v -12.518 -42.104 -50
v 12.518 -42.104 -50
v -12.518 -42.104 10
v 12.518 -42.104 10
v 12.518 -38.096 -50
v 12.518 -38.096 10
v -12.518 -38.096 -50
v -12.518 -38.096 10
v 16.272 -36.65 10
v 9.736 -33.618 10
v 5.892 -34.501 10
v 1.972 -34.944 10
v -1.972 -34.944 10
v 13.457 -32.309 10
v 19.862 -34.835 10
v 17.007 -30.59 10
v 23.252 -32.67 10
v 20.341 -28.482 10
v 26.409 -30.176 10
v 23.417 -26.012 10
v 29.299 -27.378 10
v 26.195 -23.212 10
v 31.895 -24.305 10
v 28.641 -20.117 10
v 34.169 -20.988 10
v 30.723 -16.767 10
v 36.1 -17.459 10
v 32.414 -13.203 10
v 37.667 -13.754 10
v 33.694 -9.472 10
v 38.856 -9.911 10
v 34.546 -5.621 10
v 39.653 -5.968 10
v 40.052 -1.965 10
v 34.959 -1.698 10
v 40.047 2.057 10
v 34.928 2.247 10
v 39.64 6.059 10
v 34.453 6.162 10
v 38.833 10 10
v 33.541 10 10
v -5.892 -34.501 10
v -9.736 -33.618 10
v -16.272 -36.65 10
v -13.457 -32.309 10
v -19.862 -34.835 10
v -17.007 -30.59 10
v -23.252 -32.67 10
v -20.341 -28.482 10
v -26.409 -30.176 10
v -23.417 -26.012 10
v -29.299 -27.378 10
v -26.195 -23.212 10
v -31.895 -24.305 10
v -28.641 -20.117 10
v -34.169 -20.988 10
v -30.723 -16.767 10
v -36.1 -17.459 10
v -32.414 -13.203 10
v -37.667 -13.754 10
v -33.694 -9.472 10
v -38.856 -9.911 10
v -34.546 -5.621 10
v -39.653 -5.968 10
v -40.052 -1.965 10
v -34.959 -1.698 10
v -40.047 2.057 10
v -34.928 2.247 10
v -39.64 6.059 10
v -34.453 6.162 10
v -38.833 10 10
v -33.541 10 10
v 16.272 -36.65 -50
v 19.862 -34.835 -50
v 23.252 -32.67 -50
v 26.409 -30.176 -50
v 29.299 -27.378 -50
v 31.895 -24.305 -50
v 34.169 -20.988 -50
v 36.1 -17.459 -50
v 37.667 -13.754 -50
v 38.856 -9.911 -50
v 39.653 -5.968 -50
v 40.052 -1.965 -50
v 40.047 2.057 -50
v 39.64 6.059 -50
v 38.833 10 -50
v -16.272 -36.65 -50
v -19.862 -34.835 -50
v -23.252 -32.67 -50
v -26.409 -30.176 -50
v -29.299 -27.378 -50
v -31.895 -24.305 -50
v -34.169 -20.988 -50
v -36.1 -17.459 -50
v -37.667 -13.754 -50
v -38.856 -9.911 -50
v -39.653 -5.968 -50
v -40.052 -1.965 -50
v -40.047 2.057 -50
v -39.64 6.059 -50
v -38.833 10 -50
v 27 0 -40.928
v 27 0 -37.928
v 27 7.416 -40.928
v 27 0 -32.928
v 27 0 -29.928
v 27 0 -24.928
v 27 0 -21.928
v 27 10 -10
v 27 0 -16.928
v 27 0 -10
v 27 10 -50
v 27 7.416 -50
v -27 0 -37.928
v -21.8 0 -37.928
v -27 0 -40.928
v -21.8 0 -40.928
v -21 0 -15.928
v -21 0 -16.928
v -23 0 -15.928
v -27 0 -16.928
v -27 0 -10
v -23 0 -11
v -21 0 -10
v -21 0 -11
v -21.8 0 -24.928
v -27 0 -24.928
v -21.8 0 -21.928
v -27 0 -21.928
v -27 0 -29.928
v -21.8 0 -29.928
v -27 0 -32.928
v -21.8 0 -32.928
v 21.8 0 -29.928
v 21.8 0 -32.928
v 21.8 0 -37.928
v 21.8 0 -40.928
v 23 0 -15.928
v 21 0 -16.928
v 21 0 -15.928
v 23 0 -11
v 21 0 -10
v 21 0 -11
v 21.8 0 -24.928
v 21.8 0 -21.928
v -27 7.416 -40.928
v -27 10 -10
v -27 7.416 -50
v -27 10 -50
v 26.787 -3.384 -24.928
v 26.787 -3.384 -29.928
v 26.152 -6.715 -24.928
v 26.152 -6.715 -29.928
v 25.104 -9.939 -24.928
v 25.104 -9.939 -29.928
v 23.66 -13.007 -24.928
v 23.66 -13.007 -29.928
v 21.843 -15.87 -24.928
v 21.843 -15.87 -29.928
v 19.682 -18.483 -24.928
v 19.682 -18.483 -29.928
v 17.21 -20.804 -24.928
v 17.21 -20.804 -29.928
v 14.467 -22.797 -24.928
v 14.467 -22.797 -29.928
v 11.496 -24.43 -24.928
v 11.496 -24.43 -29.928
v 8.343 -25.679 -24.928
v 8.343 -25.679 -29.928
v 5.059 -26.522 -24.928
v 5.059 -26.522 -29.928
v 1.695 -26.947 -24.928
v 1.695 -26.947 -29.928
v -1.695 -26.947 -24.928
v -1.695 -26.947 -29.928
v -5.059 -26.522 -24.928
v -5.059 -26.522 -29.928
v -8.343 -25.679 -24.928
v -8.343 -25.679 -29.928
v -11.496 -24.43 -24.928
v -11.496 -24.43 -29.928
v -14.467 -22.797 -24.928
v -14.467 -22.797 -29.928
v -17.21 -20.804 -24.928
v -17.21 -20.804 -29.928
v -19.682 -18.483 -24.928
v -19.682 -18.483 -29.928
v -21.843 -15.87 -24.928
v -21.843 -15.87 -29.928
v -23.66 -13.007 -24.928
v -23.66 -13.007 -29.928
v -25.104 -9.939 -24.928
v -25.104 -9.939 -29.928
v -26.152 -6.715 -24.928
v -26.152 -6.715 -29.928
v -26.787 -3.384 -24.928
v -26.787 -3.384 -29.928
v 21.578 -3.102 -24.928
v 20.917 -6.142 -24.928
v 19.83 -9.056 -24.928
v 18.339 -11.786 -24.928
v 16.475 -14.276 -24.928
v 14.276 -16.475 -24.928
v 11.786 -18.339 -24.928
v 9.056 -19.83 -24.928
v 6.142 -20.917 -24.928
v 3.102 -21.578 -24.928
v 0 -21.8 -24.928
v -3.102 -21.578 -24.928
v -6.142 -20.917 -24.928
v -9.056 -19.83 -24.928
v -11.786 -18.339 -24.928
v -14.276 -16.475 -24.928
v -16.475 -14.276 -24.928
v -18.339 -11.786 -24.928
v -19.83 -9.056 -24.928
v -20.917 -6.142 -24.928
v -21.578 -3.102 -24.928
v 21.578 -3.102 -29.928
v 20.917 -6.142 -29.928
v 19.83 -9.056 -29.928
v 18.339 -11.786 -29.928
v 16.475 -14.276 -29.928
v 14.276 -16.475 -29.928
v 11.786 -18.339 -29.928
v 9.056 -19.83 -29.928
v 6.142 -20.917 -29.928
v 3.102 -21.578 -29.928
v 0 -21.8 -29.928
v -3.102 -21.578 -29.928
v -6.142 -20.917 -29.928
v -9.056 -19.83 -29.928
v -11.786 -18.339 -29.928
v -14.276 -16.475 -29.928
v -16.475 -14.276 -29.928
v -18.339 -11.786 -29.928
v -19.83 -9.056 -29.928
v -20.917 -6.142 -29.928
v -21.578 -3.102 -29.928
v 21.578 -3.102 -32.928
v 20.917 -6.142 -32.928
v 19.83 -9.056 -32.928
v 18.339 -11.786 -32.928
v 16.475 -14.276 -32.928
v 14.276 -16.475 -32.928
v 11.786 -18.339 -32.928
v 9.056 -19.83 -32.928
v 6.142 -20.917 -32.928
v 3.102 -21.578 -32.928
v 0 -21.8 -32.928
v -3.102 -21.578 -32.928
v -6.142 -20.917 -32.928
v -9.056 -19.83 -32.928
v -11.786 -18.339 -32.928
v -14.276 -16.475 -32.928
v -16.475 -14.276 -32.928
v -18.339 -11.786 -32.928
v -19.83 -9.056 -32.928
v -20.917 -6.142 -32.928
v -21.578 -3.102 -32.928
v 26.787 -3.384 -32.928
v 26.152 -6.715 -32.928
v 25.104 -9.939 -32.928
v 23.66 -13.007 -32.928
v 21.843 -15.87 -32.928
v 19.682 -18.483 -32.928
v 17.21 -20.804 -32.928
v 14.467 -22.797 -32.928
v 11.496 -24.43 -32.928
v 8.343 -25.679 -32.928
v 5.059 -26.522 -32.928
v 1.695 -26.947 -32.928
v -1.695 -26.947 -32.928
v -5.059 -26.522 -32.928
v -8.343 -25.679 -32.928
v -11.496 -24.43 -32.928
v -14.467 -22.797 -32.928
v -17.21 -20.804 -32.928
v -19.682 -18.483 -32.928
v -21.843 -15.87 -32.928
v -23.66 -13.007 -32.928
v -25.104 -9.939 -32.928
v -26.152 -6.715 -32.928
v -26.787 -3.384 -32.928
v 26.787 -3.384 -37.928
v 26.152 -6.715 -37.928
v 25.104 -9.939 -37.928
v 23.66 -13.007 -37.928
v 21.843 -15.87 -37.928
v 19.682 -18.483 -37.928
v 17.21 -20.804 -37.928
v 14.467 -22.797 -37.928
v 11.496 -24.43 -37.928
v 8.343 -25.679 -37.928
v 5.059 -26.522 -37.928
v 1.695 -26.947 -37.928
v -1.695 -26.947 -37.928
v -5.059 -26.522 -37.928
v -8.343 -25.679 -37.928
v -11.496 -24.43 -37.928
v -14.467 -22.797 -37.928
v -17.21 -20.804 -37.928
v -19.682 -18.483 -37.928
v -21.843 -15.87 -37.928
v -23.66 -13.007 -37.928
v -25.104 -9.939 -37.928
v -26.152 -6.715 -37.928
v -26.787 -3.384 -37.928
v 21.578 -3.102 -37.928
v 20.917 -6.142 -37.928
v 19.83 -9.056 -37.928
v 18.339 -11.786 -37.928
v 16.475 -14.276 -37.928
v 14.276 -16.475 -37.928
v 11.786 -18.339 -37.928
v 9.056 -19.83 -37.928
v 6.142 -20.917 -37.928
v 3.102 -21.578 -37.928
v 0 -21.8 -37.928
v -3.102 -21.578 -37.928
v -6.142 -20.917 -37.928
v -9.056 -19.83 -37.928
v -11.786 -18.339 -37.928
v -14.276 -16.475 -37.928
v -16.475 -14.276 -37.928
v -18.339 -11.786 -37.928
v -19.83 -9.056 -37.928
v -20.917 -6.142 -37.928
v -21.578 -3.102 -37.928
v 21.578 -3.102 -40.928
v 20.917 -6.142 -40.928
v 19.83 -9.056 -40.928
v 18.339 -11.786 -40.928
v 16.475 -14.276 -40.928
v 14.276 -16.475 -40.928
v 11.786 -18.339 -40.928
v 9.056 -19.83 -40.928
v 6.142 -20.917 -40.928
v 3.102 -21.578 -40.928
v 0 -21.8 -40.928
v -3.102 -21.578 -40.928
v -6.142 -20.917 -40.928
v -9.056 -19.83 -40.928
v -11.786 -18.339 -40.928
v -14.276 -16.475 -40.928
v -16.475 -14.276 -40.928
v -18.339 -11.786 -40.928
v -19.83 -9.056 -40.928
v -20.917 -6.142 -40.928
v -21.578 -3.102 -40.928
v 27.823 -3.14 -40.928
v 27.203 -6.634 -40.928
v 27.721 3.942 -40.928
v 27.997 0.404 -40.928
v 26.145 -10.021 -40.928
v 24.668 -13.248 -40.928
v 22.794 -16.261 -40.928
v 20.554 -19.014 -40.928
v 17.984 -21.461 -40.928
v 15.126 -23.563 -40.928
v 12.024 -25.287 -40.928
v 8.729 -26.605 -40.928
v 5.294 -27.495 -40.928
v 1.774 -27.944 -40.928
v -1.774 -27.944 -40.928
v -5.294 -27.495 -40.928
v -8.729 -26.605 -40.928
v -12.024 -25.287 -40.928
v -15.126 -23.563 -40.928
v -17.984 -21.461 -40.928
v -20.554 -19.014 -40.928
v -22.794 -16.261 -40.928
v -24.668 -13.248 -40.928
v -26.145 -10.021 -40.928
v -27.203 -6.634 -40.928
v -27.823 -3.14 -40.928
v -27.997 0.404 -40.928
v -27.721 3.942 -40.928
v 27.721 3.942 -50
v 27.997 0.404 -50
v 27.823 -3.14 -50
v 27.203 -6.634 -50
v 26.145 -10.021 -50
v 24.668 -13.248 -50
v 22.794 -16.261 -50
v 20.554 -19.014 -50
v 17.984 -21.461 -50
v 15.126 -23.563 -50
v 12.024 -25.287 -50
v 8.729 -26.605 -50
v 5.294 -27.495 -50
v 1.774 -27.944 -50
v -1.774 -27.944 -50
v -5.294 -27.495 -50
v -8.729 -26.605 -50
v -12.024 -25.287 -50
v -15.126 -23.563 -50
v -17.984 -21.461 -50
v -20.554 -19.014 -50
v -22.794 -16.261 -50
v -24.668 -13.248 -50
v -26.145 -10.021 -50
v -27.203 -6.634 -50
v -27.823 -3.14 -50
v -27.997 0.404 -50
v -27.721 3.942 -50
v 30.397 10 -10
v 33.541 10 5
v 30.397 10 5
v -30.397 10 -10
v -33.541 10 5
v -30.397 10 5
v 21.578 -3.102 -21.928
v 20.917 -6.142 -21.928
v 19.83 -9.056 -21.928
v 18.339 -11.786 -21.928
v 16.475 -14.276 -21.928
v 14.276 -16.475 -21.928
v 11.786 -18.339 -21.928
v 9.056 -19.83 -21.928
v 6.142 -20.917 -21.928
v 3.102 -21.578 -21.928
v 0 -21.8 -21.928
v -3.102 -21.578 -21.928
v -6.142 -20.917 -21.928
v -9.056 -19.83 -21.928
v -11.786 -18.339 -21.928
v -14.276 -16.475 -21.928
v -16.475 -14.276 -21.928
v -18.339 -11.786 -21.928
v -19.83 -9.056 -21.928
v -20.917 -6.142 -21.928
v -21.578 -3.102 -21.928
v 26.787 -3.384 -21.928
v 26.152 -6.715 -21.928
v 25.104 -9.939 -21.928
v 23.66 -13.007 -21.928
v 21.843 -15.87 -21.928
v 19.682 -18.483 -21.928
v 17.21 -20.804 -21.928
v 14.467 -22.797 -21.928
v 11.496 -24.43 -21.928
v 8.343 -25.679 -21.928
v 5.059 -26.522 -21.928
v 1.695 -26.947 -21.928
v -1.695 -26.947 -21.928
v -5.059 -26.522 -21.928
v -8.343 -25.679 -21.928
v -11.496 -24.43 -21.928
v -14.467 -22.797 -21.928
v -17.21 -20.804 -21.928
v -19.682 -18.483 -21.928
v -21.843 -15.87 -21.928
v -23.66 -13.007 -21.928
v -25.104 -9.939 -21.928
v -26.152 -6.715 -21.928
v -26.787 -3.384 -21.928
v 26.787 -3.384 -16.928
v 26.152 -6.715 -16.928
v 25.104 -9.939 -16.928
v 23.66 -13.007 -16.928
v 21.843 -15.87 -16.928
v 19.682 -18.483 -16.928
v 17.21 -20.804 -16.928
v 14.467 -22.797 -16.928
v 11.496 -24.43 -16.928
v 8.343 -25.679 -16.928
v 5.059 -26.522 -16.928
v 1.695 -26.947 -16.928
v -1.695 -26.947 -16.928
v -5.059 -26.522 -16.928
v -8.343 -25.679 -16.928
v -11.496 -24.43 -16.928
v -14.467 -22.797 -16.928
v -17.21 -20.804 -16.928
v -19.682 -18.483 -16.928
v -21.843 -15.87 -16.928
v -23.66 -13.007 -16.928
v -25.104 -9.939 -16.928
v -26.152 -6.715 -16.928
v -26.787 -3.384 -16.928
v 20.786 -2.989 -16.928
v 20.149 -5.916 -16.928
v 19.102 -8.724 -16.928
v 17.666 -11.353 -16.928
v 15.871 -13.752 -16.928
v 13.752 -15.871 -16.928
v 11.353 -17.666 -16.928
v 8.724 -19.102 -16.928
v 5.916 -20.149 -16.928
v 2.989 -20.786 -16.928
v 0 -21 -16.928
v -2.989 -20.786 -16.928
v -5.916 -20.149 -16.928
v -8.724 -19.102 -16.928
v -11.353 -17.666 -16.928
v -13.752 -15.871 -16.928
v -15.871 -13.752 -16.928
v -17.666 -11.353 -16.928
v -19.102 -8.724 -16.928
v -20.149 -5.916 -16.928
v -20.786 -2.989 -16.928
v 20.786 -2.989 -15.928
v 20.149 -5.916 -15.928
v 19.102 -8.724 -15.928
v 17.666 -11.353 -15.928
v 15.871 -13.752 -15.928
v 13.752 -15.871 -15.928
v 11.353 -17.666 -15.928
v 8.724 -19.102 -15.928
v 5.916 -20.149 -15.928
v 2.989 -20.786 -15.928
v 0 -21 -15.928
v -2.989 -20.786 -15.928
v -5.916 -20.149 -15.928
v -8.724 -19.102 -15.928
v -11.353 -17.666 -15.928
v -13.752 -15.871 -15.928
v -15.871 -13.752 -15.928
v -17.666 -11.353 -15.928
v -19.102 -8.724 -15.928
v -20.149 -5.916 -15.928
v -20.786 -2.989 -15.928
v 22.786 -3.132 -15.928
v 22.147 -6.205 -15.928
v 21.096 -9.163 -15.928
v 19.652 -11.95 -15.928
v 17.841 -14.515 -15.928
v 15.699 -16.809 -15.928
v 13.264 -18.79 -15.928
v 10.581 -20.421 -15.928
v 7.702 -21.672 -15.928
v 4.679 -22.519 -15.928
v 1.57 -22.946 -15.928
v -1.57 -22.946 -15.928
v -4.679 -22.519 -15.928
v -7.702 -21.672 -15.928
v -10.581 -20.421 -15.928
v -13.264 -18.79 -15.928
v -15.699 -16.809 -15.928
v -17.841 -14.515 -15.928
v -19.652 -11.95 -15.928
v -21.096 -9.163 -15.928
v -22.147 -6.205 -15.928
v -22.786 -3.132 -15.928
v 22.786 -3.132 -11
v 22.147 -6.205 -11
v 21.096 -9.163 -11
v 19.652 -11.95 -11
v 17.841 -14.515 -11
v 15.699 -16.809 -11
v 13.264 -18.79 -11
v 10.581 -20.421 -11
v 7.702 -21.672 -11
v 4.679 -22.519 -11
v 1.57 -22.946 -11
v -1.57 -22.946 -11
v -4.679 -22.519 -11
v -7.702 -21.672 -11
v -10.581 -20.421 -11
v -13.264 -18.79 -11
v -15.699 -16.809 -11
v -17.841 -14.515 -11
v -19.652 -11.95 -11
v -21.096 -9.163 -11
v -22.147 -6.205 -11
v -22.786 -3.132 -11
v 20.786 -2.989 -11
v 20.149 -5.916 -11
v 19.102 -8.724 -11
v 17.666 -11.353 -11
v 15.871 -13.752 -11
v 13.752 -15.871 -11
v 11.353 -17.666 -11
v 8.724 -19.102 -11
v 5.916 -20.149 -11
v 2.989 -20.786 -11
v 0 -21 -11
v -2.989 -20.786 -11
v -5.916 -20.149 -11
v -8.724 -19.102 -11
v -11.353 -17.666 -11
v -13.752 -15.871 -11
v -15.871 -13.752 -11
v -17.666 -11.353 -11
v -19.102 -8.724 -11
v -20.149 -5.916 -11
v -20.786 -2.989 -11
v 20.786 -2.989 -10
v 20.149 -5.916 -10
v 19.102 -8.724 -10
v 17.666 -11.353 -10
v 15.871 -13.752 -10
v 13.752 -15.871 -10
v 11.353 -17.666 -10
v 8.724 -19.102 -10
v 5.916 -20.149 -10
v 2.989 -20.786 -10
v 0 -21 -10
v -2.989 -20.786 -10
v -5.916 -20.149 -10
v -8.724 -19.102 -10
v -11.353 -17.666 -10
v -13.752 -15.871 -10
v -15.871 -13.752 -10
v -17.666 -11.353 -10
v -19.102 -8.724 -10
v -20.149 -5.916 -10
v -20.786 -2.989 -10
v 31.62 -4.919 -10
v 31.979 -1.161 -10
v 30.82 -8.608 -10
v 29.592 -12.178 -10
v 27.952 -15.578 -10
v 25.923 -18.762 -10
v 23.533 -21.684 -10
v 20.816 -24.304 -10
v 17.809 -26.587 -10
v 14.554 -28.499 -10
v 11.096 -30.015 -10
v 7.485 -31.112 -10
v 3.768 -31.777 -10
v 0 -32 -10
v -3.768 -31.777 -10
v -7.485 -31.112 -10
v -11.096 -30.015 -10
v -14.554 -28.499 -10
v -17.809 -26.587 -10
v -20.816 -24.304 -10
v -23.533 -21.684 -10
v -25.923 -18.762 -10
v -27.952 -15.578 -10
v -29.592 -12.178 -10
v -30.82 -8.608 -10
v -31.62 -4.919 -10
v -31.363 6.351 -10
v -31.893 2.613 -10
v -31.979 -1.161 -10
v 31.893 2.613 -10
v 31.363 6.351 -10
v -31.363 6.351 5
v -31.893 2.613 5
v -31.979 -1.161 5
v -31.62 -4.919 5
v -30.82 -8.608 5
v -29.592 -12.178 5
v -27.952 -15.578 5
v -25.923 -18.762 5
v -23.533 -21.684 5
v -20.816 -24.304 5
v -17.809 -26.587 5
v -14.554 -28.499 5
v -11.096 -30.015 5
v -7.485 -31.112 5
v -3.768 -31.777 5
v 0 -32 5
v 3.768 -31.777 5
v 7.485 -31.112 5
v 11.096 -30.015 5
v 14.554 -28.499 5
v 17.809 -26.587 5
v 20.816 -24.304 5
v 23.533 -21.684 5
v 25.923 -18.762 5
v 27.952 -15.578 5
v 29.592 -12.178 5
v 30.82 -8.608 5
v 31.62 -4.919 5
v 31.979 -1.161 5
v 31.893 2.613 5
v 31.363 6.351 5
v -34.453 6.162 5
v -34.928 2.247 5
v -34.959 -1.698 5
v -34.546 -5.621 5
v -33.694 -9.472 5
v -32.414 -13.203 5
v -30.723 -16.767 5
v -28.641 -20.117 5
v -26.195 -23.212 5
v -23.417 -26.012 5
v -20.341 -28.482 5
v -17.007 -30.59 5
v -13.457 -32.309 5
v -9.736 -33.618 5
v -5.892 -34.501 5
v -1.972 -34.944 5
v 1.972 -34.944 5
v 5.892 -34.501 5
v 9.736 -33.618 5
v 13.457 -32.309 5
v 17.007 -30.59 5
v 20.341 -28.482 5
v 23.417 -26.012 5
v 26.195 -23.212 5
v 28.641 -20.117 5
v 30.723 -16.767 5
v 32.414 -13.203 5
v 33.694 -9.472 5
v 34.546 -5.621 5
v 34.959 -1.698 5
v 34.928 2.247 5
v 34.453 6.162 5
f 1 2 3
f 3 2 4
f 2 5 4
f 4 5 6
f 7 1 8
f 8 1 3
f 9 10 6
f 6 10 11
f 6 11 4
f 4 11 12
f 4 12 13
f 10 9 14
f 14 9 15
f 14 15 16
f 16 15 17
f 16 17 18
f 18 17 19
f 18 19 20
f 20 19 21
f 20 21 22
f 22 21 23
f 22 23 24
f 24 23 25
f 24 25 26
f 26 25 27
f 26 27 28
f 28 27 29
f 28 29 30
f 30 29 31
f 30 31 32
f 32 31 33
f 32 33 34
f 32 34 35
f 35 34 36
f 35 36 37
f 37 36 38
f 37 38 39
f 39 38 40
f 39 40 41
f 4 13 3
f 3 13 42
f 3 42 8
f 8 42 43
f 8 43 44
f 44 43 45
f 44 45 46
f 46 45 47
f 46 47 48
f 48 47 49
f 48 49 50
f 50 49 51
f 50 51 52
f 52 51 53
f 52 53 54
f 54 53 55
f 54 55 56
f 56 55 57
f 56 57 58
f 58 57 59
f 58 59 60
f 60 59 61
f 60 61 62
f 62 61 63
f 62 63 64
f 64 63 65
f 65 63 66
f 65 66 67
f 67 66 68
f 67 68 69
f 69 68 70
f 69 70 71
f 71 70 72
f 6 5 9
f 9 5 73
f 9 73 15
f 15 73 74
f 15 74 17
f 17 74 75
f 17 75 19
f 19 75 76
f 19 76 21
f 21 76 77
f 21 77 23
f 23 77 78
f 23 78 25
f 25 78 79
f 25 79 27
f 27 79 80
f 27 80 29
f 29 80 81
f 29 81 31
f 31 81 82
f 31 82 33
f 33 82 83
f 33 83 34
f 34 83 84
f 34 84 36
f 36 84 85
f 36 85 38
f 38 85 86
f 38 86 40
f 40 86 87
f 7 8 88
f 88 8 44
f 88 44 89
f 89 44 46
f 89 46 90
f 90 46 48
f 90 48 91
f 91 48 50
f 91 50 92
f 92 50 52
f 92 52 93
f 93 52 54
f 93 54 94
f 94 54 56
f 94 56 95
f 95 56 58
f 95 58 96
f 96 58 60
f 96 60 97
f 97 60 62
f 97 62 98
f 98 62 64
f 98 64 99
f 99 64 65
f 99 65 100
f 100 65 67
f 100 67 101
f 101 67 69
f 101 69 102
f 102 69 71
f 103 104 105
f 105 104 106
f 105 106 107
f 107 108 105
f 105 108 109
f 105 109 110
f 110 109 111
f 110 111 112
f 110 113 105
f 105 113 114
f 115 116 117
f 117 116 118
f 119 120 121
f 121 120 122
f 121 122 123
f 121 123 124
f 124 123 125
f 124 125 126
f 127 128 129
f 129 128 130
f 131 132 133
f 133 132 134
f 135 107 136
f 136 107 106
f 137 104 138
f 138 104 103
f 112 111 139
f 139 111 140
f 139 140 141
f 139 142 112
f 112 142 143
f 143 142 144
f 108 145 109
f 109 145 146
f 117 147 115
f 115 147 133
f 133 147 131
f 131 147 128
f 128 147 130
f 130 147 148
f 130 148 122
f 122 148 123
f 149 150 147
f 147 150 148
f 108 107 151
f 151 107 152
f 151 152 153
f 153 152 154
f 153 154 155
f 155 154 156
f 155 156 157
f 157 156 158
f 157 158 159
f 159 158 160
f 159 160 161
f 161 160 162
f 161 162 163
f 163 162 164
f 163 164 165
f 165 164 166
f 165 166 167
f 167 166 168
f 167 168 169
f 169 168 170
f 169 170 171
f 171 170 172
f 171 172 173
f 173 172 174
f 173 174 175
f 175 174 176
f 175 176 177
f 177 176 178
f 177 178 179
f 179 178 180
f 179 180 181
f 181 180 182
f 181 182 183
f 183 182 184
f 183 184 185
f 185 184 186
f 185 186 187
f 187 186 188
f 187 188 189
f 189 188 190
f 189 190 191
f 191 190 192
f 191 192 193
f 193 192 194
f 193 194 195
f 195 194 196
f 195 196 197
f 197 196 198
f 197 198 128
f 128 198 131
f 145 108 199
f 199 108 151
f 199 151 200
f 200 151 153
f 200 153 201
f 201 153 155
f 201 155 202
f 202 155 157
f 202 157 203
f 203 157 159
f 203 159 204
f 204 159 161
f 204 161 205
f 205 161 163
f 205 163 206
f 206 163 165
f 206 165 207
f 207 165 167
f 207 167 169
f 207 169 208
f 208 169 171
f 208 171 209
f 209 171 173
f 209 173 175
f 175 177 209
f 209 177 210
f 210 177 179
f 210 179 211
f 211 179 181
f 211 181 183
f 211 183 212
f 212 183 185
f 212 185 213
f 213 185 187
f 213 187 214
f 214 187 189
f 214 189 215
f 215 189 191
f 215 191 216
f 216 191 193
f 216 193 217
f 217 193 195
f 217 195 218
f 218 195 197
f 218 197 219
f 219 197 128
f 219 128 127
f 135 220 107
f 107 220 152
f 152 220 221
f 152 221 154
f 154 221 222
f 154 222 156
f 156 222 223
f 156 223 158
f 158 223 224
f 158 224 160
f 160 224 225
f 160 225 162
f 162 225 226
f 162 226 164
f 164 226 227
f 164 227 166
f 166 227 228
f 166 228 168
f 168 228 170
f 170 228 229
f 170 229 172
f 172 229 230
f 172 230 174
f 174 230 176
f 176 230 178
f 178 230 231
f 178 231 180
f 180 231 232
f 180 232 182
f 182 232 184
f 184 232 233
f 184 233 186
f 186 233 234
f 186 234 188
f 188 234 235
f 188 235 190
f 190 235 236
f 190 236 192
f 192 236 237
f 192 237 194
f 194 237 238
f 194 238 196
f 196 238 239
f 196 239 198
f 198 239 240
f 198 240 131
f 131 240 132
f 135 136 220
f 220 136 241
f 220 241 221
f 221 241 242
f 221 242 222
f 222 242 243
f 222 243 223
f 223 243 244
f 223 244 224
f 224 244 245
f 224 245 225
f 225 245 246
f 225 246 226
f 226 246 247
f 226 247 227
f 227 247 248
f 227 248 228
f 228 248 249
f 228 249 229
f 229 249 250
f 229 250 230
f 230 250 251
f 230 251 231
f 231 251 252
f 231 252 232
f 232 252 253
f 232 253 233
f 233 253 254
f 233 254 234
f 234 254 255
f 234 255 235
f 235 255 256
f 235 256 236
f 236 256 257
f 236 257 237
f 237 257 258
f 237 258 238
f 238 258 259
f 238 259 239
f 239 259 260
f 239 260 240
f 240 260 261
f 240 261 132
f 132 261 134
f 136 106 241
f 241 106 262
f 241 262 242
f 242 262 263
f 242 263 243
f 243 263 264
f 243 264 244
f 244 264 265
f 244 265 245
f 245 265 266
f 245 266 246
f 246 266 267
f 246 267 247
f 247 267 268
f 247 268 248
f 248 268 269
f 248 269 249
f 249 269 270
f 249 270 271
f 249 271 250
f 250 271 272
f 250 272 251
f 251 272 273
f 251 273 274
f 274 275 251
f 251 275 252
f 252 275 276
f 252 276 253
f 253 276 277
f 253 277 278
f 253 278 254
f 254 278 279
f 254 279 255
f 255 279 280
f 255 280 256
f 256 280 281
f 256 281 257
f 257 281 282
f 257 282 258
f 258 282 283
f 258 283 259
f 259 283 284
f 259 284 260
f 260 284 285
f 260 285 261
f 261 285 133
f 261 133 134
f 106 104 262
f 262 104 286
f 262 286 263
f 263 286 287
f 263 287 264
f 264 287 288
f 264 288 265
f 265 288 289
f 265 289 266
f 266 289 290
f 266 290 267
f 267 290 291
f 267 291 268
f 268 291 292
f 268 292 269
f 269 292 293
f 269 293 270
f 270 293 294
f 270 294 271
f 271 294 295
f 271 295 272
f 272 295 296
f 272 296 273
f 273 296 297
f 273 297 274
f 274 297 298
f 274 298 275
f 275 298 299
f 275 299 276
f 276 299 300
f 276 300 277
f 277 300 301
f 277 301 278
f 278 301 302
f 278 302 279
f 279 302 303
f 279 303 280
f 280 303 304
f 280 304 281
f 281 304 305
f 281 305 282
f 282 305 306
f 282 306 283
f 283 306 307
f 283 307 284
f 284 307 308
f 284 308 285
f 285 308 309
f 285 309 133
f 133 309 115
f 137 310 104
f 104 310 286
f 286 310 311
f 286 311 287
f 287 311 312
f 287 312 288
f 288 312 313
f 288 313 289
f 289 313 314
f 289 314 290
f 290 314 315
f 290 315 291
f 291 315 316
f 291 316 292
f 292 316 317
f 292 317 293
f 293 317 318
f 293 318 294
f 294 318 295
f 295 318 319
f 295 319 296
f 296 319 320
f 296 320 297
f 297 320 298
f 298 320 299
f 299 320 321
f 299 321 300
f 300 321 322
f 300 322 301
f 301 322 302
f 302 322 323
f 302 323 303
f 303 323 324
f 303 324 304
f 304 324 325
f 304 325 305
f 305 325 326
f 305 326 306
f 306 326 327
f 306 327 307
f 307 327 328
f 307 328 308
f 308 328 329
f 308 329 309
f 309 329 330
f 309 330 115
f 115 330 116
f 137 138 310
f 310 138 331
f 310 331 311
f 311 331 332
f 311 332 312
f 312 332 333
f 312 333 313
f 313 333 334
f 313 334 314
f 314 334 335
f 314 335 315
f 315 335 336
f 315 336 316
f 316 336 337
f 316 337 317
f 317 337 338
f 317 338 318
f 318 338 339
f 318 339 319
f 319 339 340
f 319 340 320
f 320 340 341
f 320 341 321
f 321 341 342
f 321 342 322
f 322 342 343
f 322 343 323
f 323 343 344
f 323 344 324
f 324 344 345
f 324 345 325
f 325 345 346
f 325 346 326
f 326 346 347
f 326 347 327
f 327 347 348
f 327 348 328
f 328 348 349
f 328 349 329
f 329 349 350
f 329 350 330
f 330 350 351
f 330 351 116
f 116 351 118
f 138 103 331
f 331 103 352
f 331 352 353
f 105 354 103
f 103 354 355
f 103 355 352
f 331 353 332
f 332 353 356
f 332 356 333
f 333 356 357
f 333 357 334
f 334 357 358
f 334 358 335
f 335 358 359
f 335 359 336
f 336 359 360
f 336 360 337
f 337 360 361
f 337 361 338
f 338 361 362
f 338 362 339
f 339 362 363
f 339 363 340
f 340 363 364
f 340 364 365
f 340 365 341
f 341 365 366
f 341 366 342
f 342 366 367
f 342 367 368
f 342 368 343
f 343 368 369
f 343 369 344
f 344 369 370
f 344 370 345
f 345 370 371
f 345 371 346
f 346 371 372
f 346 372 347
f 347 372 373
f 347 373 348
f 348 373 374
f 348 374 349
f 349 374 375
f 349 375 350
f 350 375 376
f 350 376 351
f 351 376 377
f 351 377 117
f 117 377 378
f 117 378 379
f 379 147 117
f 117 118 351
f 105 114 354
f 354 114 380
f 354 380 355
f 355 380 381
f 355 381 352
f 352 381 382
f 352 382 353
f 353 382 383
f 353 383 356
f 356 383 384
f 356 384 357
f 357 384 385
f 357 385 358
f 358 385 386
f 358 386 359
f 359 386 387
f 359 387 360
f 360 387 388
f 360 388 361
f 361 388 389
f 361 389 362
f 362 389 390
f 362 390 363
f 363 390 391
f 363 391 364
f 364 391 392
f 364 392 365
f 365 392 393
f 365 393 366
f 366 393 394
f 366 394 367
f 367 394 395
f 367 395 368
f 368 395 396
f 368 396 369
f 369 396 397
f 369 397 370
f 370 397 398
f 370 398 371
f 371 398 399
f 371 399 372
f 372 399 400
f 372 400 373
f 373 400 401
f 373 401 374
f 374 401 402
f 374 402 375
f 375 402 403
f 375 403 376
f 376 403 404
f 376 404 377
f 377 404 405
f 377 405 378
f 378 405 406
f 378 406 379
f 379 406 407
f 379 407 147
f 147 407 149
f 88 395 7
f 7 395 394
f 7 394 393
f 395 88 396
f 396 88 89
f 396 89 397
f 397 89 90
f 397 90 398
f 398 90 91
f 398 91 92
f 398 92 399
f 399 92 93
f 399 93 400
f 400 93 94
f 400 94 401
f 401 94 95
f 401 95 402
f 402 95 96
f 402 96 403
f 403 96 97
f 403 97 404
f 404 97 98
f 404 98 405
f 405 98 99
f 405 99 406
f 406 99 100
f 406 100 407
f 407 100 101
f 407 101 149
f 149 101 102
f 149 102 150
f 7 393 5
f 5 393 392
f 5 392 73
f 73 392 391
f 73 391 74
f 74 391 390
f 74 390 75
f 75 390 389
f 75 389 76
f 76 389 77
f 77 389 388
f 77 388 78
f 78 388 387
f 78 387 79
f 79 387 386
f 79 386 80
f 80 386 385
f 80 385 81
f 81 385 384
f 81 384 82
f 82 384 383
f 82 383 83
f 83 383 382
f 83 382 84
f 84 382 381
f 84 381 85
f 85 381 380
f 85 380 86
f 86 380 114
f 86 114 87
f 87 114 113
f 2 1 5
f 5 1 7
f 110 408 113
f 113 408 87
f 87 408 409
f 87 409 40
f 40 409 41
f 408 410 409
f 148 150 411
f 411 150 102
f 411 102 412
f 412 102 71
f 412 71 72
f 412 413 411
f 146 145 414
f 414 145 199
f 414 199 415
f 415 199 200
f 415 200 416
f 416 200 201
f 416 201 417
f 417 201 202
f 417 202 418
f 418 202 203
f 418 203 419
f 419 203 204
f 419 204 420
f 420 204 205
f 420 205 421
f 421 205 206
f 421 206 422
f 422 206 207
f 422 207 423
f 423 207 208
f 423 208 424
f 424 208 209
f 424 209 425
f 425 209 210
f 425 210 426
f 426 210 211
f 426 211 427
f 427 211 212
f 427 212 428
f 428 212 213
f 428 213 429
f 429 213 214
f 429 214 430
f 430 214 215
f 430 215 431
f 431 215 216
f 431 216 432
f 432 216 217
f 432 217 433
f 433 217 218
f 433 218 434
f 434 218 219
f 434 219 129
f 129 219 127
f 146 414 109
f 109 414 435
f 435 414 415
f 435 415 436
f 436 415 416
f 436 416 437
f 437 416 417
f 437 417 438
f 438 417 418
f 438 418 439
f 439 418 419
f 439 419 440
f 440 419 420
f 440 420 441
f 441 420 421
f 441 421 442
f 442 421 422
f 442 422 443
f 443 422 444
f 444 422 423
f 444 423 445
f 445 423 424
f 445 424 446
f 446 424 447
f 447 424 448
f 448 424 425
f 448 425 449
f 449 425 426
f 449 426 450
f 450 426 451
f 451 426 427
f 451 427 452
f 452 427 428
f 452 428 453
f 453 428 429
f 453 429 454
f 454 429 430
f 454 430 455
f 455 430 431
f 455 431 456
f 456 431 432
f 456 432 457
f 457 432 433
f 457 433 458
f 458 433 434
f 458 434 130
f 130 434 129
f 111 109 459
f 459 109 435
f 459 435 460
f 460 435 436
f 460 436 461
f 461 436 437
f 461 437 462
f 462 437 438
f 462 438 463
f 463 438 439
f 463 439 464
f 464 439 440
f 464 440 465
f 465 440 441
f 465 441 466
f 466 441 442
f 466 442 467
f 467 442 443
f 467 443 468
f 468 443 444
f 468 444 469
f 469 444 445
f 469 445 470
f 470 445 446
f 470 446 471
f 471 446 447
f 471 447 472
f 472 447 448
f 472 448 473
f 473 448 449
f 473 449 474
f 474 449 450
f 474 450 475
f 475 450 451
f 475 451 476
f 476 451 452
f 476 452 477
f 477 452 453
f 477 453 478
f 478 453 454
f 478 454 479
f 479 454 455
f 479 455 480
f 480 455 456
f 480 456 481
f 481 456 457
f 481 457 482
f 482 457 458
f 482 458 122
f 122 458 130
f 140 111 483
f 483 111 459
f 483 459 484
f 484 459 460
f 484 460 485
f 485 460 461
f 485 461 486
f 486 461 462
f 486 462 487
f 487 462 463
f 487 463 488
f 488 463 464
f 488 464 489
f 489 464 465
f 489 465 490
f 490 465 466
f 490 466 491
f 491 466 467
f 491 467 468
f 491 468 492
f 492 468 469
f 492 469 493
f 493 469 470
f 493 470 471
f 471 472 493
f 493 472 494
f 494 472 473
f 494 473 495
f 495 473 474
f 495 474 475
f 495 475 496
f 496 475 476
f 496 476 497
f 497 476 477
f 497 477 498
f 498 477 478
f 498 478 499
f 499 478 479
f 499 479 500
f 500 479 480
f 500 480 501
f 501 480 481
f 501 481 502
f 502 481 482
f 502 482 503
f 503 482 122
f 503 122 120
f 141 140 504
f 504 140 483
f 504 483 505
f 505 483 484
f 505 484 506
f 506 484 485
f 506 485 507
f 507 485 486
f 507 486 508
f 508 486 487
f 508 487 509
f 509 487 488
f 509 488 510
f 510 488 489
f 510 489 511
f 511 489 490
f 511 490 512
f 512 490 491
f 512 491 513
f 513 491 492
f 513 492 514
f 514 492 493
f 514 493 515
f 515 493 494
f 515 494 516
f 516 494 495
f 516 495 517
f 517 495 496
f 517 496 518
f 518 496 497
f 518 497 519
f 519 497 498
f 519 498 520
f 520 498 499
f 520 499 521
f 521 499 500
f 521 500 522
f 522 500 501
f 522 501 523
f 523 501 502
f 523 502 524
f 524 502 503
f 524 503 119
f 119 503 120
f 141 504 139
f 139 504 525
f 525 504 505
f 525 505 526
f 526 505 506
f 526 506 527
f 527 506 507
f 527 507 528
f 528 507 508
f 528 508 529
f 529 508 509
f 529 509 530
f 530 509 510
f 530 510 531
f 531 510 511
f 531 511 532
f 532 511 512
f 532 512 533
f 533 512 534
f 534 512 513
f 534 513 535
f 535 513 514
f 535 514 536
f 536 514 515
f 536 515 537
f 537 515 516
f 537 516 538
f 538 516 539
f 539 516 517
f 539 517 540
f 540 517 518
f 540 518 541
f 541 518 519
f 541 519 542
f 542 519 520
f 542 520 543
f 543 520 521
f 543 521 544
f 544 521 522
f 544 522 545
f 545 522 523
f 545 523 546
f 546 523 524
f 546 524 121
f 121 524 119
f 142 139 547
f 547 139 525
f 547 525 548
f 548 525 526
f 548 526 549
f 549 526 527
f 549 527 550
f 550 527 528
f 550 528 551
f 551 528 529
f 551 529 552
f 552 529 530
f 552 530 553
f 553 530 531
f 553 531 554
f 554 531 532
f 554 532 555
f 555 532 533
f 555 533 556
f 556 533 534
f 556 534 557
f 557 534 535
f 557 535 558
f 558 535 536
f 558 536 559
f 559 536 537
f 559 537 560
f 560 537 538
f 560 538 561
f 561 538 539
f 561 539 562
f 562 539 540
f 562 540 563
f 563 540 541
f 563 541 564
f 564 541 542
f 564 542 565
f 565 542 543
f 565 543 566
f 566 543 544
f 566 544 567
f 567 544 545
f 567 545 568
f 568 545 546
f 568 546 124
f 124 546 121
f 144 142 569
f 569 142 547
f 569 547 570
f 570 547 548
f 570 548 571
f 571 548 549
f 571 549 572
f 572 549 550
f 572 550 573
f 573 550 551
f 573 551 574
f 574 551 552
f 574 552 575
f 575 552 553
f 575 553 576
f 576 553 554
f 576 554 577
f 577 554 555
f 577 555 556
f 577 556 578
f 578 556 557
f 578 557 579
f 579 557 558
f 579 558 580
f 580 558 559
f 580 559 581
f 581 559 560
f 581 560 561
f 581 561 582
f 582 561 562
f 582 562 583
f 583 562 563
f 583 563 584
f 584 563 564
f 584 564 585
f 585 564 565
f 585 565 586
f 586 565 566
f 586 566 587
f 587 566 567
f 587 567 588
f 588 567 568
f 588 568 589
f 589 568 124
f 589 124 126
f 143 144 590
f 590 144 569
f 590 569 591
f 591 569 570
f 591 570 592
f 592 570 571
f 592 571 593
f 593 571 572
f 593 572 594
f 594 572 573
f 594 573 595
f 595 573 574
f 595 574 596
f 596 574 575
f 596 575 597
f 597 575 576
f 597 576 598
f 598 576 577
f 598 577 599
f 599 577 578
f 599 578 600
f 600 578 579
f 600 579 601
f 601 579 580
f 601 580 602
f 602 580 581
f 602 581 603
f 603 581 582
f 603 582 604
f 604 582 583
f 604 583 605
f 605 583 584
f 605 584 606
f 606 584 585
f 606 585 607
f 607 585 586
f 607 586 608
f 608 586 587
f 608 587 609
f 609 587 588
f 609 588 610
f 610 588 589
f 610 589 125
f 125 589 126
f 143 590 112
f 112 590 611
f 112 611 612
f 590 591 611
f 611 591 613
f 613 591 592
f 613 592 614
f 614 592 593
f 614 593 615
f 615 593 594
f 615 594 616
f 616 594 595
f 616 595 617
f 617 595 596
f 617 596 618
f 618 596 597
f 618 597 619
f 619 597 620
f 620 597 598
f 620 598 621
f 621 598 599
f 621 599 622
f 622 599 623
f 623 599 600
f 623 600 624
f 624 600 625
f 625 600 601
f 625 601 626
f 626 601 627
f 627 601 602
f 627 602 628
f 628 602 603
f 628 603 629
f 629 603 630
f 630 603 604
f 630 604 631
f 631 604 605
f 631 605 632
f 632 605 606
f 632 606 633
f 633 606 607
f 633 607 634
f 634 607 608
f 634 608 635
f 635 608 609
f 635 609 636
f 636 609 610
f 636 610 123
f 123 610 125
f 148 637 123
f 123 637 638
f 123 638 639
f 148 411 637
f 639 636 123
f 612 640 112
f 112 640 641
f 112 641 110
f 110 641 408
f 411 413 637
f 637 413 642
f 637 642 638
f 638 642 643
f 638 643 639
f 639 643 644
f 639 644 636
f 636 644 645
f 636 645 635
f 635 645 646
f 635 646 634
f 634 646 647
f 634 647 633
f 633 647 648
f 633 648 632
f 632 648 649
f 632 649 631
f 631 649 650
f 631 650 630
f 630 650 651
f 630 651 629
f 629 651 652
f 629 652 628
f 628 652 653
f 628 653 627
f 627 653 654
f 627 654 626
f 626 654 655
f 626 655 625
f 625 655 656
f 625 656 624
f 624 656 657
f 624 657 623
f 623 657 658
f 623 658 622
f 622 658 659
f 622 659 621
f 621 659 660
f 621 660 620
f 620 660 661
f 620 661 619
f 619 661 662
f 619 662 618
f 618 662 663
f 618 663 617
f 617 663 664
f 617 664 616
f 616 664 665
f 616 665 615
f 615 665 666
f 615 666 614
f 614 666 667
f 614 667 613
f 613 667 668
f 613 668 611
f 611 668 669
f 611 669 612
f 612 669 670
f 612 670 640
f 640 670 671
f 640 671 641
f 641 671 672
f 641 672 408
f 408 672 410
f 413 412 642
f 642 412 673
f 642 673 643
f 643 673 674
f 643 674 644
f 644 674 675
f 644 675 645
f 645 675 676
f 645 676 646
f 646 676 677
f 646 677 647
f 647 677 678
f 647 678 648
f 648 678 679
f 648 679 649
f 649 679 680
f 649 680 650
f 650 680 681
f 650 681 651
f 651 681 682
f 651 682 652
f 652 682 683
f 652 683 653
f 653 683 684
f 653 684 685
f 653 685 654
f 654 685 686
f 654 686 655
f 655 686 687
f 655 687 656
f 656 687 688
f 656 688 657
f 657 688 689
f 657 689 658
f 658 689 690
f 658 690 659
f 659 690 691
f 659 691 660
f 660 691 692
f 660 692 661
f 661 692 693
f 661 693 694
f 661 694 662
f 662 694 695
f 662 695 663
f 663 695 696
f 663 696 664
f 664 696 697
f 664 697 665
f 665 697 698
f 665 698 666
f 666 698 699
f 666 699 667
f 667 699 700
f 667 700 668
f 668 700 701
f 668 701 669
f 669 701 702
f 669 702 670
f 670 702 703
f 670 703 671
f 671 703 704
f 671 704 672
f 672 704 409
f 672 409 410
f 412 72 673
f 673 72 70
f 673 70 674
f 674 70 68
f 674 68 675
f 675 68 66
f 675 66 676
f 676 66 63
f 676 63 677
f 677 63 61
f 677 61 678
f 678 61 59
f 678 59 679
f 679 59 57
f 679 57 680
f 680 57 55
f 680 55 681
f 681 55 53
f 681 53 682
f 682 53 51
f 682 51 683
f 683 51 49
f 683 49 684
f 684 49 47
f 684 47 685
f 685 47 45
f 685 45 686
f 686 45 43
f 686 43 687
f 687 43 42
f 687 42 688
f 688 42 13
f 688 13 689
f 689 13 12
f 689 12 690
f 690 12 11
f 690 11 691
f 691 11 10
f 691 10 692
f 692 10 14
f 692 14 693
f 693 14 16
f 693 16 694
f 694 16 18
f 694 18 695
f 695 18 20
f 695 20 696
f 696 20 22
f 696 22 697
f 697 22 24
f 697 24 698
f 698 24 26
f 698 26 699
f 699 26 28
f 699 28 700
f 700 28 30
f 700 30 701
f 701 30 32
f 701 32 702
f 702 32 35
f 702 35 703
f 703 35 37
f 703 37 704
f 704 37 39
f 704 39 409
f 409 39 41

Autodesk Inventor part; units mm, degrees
ref_plane "YZ Plane" through (0, 0, 0) normal (1, 0, 0) x (0, 1, 0)
ref_plane "XZ Plane" through (0, 0, 0) normal (0, 1, 0) x (-1, 0, 0)
ref_plane "XY Plane" through (0, 0, 0) normal (0, 0, 1) x (1, 0, 0)
sketch "Sketch1" plane through (0, 0, 0) normal (0, 1, 0) x (-1, 0, 0)
  line L0 (-35, 10) -> (-40.1, 10)
  line L1 (-40.1, 10) -> (-40.1, -50)
  line L2 (-40.1, -50) -> (-35.1, -50)
  line L3 (-35, 5) -> (-32, 5)
  line L4 (-32, 5) -> (-32, -10)
  line L5 (-32, -10) -> (-23, -10)
  line L6 (-23, -11) -> (-23, -15.9282)
  line L7 (-22, -16.9282) -> (-27, -16.9282)
  line L8 (-27, -16.9282) -> (-27, -21.9282)
  line L9 (-27, -21.9282) -> (-21.8, -21.9282)
  line L10 (-21.8, -21.9282) -> (-21.8, -24.9282)
  line L11 (-21.8, -24.9282) -> (-27, -24.9282)
  line L12 (-27, -24.9282) -> (-27, -29.9282)
  line L13 (-27, -29.9282) -> (-21.8, -29.9282)
  line L14 (-21.8, -29.9282) -> (-21.8, -32.9282)
  line L15 (-21.8, -32.9282) -> (-27, -32.9282)
  line L16 (-27, -32.9282) -> (-27, -37.9282)
  line L17 (-27, -37.9282) -> (-21.8, -37.9282)
  line L18 (-21.8, -37.9282) -> (-21.8, -40.9282)
  line L19 (-21.8, -40.9282) -> (-28, -40.9282)
  line L20 (-23, -10) -> (-21, -10)
  line L21 (-21, -10) -> (-21, -11)
  line L22 (-21, -11) -> (-23, -11)
  line L23 (-22, -16.9282) -> (-21, -16.9282)
  line L24 (-21, -16.9282) -> (-21, -15.9282)
  line L25 (-21, -15.9282) -> (-23, -15.9282)
  line L26 (-28, -40.9282) -> (-28, -50)
  line L27 (-28, -50) -> (-35.1, -50)
  line L28 (-35, 5) -> (-35, 10)
  line L29 (0, -62) -> (0, 22) projected
  point P0 (0, 0)
  point P1 (-33.5, 5)
  dimension "d4" = 3
  dimension "d6" = 23
  dimension "d7" = 5
  dimension "d8" = 5
  dimension "d11" = 3
  dimension "d12" = 5
  dimension "d13" = 3
  dimension "d14" = 5
  dimension "d15" = 3
  dimension "d16" = 2
  dimension "d17" = 1
  dimension "d18" = 1
  dimension "d19" = 28
  dimension "d20" = 27
  dimension "d21" = 27
  dimension "d22" = 23
  dimension "d28" = 15
  dimension "d29" = 5
  dimension "d30" = 32
revolve "Revolution1" add sketch "Sketch1" angle 360 about axis through (0, 0, -10) along (0, 0, 1)
sketch "Sketch2" plane through (0, 0, 10) normal (0, 0, 1) x (1, 0, 0)
  line L0 (-41.9384, 10) -> (42.6332, 10)
  line L1 (42.6332, 10) -> (42.6332, 41.1939)
  line L2 (42.6332, 41.1939) -> (-41.9384, 41.1939)
  line L3 (-41.9384, 41.1939) -> (-41.9384, 10)
  point P0 (0, 0)
extrude "Extrusion1" cut sketch "Sketch2" against normal through all
sketch "Sketch3" plane through (0, 0, -10) normal (0, 0, 1) x (1, 0, 0)
  arc A0 (-25.0799, 10) -> (25.0799, 10) centre (0, 0) ccw projected
  line L0 (-27, 0) -> (27, 0)
  line L1 (27, 0) -> (27, 40.4991)
  line L2 (27, 40.4991) -> (-27, 40.4991)
  line L3 (-27, 40.4991) -> (-27, 0)
extrude "Extrusion2" cut sketch "Sketch3" against normal through all contours L3 L2 L1 L0
sketch "Sketch4" plane through (0, 0, 10) normal (0, 0, 1) x (1, 0, 0)
  arc A0 (-38.8331, 10) -> (38.8331, 10) centre (0, 0) ccw projected
  line L0 (12.5184, -42.1041) -> (-12.5184, -42.1041)
  line L1 (-12.5184, -42.1041) -> (-12.5184, -38.0959)
  line L2 (-12.5184, -38.0959) -> (12.5184, -38.0959)
  line L3 (12.5184, -38.0959) -> (12.5184, -42.1041)
  line L4 (12.5184, -42.1041) -> (-12.5184, -38.0959) construction
  line L5 (-12.5184, -42.1041) -> (12.5184, -38.0959) construction
  point P0 (0, -40.1)
extrude "Extrusion3" add sketch "Sketch4" against normal up to surface (60 mm away)
properties part number "HAL-filter-holder1"
